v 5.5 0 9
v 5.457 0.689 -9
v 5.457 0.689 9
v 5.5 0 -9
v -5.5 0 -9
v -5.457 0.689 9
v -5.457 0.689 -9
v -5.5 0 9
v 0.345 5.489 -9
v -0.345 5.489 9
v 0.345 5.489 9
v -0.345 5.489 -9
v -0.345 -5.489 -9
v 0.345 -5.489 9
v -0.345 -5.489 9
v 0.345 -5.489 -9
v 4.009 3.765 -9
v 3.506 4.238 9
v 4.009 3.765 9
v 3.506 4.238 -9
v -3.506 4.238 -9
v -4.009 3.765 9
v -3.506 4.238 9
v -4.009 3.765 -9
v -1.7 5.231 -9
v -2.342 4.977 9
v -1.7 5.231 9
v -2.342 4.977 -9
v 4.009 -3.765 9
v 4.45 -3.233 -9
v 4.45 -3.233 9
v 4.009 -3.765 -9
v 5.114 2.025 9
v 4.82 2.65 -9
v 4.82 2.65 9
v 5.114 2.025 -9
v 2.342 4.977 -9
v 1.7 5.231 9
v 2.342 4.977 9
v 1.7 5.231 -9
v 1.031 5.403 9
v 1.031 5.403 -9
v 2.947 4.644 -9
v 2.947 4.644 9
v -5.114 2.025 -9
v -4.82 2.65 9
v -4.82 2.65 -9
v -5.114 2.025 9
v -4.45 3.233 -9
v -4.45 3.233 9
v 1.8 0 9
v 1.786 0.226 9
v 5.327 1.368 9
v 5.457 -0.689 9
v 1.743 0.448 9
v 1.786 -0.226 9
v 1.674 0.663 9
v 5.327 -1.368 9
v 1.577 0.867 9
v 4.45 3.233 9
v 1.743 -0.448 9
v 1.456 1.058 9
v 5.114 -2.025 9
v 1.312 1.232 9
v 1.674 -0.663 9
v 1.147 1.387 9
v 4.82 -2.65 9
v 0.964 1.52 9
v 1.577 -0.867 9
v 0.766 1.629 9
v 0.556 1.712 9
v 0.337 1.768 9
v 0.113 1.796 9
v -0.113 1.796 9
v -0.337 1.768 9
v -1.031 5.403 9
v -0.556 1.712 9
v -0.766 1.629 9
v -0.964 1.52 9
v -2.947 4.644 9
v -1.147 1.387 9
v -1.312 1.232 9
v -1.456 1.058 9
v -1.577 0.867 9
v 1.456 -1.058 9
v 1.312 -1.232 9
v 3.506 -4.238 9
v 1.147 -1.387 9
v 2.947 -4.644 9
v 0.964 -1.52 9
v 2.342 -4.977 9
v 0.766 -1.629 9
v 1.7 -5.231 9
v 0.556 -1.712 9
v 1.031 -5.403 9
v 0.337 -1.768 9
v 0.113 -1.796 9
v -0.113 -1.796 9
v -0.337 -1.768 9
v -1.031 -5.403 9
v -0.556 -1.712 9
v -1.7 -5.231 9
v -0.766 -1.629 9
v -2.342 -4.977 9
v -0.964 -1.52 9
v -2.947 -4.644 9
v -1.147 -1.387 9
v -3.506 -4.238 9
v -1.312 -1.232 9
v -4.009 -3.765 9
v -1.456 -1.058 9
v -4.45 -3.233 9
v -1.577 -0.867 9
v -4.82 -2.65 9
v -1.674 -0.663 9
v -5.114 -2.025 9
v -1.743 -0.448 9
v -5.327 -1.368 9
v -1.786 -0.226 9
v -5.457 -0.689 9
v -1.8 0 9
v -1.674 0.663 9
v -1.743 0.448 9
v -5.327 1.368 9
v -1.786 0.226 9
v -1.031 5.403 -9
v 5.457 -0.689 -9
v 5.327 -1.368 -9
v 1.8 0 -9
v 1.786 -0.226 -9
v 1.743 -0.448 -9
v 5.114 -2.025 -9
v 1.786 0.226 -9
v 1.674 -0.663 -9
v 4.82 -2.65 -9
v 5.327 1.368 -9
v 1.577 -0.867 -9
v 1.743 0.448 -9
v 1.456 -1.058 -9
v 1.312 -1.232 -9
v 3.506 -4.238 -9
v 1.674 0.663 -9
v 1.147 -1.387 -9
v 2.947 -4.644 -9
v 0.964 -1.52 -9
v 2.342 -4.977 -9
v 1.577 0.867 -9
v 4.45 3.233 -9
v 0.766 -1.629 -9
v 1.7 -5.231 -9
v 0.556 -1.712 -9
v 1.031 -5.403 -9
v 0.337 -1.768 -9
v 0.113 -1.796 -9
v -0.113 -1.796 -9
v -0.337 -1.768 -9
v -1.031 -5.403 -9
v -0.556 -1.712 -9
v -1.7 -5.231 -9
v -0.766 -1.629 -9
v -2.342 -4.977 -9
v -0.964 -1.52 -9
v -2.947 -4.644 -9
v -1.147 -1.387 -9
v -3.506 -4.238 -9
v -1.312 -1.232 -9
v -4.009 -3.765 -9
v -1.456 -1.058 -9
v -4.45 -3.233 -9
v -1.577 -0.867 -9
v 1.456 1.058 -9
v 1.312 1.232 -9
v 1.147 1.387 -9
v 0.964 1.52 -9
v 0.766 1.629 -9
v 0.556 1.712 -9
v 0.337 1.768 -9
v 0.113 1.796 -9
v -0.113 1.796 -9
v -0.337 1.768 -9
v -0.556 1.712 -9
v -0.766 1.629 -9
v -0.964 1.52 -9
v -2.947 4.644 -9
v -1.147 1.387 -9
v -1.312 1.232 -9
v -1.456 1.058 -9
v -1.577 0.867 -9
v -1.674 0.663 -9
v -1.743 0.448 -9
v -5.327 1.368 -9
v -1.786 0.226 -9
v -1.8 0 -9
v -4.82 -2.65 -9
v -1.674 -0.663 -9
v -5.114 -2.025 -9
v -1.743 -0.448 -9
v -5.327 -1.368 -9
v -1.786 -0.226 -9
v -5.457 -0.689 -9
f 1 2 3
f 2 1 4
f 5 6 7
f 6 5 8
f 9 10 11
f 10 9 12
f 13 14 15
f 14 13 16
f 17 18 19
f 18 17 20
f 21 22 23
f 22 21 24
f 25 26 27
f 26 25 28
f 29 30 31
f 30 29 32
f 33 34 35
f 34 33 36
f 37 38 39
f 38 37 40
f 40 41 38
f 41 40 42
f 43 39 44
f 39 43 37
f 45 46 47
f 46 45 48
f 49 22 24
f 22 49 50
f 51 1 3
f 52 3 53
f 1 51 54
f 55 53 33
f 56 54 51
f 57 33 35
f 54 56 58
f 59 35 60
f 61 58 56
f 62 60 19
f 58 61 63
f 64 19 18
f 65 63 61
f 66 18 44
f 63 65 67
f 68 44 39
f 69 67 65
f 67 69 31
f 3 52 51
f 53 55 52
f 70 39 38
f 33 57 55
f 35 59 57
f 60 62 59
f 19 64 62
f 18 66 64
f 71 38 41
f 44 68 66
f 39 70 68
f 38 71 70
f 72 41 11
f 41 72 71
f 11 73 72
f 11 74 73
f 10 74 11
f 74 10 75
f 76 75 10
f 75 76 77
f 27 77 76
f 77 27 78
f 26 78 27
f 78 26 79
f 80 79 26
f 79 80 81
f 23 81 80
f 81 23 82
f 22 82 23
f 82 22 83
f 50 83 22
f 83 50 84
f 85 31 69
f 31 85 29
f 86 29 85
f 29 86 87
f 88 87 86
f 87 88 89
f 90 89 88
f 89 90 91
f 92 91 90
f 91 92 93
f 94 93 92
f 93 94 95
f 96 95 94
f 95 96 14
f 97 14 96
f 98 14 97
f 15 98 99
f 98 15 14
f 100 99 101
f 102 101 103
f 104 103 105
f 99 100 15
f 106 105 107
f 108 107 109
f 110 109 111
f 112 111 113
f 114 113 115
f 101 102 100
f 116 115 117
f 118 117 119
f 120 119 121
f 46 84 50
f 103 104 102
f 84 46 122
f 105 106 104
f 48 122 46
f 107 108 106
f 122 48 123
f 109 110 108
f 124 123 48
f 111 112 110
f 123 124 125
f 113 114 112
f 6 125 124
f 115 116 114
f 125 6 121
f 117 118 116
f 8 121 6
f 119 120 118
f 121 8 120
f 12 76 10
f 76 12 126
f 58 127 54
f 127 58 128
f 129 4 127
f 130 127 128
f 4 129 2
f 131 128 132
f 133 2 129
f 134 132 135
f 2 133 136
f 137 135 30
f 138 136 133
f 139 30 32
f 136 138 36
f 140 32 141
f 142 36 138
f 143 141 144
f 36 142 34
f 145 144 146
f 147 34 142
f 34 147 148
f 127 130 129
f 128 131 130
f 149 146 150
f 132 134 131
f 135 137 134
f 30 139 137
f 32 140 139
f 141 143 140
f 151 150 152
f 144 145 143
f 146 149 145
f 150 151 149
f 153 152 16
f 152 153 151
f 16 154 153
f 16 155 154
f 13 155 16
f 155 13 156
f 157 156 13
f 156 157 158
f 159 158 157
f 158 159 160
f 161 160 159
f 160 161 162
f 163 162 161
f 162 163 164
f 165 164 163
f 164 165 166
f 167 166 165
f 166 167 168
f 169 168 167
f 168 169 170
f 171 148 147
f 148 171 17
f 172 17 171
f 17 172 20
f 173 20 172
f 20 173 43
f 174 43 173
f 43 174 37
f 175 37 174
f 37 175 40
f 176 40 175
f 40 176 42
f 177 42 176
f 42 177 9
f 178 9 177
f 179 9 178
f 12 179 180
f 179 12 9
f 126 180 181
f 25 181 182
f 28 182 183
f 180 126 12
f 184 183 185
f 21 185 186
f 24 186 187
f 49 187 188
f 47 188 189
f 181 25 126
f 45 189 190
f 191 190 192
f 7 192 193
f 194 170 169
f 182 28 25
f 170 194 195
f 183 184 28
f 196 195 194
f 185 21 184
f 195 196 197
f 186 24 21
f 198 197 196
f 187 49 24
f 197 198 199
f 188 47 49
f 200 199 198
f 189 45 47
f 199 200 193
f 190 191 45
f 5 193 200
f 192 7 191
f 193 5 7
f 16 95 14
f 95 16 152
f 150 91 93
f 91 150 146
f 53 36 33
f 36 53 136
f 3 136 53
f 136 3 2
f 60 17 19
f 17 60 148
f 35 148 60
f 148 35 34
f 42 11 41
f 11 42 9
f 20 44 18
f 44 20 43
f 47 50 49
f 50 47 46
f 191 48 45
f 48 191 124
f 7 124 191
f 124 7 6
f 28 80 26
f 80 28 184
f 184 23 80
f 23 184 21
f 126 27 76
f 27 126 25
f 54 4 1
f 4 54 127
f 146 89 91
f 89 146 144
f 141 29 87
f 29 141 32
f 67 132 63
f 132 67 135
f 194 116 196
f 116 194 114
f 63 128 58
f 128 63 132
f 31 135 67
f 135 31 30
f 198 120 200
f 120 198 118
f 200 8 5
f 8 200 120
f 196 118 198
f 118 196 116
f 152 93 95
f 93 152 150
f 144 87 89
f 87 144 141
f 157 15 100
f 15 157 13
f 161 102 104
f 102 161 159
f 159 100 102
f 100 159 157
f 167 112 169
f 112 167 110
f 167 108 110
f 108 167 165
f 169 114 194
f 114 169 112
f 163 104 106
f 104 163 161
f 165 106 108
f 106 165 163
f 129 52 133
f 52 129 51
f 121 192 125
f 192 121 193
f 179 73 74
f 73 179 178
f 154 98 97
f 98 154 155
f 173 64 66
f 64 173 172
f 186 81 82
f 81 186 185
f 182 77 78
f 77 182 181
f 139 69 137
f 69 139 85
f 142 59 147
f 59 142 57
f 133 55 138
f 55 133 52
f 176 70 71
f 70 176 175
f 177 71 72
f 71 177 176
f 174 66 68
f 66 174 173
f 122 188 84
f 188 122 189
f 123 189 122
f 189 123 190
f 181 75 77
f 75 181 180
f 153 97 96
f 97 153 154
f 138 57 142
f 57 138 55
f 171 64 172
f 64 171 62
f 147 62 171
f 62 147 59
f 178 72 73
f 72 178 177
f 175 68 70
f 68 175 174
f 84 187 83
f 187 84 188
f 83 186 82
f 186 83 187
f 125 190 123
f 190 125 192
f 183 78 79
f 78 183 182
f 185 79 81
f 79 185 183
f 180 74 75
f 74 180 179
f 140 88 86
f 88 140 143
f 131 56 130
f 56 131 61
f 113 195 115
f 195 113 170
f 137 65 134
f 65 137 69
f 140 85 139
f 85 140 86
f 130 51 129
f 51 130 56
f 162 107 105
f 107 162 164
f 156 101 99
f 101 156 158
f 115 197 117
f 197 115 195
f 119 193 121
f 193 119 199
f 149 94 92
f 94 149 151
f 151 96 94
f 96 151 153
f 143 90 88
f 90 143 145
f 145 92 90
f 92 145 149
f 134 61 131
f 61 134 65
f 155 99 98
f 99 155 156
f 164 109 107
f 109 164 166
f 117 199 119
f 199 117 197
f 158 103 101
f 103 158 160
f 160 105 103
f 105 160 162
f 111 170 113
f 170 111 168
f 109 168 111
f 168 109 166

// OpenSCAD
$fn = 50;


difference() {
	union() {
		translate(v = [0, 0, -9.0000000000]) {
			cylinder(h = 18, r = 5.5000000000);
		}
	}
	union() {
		translate(v = [0, 0, -100.0000000000]) {
			cylinder(h = 200, r = 1.8000000000);
		}
	}
}
